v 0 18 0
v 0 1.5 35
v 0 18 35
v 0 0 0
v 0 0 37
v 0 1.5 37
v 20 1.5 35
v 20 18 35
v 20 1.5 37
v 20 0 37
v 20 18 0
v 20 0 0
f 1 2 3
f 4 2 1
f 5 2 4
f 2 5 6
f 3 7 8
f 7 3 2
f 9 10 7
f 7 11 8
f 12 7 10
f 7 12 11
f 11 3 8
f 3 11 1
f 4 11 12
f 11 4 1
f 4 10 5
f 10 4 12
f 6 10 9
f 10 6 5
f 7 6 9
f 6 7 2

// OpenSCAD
vyska=35;
sirka=20;
hloubka=18;

color("orange") {
  cube(size=[sirka, hloubka, vyska], center=false);
  translate([0, 0, vyska]) {
    cube([sirka, 1.5, 2]);
  }
}
